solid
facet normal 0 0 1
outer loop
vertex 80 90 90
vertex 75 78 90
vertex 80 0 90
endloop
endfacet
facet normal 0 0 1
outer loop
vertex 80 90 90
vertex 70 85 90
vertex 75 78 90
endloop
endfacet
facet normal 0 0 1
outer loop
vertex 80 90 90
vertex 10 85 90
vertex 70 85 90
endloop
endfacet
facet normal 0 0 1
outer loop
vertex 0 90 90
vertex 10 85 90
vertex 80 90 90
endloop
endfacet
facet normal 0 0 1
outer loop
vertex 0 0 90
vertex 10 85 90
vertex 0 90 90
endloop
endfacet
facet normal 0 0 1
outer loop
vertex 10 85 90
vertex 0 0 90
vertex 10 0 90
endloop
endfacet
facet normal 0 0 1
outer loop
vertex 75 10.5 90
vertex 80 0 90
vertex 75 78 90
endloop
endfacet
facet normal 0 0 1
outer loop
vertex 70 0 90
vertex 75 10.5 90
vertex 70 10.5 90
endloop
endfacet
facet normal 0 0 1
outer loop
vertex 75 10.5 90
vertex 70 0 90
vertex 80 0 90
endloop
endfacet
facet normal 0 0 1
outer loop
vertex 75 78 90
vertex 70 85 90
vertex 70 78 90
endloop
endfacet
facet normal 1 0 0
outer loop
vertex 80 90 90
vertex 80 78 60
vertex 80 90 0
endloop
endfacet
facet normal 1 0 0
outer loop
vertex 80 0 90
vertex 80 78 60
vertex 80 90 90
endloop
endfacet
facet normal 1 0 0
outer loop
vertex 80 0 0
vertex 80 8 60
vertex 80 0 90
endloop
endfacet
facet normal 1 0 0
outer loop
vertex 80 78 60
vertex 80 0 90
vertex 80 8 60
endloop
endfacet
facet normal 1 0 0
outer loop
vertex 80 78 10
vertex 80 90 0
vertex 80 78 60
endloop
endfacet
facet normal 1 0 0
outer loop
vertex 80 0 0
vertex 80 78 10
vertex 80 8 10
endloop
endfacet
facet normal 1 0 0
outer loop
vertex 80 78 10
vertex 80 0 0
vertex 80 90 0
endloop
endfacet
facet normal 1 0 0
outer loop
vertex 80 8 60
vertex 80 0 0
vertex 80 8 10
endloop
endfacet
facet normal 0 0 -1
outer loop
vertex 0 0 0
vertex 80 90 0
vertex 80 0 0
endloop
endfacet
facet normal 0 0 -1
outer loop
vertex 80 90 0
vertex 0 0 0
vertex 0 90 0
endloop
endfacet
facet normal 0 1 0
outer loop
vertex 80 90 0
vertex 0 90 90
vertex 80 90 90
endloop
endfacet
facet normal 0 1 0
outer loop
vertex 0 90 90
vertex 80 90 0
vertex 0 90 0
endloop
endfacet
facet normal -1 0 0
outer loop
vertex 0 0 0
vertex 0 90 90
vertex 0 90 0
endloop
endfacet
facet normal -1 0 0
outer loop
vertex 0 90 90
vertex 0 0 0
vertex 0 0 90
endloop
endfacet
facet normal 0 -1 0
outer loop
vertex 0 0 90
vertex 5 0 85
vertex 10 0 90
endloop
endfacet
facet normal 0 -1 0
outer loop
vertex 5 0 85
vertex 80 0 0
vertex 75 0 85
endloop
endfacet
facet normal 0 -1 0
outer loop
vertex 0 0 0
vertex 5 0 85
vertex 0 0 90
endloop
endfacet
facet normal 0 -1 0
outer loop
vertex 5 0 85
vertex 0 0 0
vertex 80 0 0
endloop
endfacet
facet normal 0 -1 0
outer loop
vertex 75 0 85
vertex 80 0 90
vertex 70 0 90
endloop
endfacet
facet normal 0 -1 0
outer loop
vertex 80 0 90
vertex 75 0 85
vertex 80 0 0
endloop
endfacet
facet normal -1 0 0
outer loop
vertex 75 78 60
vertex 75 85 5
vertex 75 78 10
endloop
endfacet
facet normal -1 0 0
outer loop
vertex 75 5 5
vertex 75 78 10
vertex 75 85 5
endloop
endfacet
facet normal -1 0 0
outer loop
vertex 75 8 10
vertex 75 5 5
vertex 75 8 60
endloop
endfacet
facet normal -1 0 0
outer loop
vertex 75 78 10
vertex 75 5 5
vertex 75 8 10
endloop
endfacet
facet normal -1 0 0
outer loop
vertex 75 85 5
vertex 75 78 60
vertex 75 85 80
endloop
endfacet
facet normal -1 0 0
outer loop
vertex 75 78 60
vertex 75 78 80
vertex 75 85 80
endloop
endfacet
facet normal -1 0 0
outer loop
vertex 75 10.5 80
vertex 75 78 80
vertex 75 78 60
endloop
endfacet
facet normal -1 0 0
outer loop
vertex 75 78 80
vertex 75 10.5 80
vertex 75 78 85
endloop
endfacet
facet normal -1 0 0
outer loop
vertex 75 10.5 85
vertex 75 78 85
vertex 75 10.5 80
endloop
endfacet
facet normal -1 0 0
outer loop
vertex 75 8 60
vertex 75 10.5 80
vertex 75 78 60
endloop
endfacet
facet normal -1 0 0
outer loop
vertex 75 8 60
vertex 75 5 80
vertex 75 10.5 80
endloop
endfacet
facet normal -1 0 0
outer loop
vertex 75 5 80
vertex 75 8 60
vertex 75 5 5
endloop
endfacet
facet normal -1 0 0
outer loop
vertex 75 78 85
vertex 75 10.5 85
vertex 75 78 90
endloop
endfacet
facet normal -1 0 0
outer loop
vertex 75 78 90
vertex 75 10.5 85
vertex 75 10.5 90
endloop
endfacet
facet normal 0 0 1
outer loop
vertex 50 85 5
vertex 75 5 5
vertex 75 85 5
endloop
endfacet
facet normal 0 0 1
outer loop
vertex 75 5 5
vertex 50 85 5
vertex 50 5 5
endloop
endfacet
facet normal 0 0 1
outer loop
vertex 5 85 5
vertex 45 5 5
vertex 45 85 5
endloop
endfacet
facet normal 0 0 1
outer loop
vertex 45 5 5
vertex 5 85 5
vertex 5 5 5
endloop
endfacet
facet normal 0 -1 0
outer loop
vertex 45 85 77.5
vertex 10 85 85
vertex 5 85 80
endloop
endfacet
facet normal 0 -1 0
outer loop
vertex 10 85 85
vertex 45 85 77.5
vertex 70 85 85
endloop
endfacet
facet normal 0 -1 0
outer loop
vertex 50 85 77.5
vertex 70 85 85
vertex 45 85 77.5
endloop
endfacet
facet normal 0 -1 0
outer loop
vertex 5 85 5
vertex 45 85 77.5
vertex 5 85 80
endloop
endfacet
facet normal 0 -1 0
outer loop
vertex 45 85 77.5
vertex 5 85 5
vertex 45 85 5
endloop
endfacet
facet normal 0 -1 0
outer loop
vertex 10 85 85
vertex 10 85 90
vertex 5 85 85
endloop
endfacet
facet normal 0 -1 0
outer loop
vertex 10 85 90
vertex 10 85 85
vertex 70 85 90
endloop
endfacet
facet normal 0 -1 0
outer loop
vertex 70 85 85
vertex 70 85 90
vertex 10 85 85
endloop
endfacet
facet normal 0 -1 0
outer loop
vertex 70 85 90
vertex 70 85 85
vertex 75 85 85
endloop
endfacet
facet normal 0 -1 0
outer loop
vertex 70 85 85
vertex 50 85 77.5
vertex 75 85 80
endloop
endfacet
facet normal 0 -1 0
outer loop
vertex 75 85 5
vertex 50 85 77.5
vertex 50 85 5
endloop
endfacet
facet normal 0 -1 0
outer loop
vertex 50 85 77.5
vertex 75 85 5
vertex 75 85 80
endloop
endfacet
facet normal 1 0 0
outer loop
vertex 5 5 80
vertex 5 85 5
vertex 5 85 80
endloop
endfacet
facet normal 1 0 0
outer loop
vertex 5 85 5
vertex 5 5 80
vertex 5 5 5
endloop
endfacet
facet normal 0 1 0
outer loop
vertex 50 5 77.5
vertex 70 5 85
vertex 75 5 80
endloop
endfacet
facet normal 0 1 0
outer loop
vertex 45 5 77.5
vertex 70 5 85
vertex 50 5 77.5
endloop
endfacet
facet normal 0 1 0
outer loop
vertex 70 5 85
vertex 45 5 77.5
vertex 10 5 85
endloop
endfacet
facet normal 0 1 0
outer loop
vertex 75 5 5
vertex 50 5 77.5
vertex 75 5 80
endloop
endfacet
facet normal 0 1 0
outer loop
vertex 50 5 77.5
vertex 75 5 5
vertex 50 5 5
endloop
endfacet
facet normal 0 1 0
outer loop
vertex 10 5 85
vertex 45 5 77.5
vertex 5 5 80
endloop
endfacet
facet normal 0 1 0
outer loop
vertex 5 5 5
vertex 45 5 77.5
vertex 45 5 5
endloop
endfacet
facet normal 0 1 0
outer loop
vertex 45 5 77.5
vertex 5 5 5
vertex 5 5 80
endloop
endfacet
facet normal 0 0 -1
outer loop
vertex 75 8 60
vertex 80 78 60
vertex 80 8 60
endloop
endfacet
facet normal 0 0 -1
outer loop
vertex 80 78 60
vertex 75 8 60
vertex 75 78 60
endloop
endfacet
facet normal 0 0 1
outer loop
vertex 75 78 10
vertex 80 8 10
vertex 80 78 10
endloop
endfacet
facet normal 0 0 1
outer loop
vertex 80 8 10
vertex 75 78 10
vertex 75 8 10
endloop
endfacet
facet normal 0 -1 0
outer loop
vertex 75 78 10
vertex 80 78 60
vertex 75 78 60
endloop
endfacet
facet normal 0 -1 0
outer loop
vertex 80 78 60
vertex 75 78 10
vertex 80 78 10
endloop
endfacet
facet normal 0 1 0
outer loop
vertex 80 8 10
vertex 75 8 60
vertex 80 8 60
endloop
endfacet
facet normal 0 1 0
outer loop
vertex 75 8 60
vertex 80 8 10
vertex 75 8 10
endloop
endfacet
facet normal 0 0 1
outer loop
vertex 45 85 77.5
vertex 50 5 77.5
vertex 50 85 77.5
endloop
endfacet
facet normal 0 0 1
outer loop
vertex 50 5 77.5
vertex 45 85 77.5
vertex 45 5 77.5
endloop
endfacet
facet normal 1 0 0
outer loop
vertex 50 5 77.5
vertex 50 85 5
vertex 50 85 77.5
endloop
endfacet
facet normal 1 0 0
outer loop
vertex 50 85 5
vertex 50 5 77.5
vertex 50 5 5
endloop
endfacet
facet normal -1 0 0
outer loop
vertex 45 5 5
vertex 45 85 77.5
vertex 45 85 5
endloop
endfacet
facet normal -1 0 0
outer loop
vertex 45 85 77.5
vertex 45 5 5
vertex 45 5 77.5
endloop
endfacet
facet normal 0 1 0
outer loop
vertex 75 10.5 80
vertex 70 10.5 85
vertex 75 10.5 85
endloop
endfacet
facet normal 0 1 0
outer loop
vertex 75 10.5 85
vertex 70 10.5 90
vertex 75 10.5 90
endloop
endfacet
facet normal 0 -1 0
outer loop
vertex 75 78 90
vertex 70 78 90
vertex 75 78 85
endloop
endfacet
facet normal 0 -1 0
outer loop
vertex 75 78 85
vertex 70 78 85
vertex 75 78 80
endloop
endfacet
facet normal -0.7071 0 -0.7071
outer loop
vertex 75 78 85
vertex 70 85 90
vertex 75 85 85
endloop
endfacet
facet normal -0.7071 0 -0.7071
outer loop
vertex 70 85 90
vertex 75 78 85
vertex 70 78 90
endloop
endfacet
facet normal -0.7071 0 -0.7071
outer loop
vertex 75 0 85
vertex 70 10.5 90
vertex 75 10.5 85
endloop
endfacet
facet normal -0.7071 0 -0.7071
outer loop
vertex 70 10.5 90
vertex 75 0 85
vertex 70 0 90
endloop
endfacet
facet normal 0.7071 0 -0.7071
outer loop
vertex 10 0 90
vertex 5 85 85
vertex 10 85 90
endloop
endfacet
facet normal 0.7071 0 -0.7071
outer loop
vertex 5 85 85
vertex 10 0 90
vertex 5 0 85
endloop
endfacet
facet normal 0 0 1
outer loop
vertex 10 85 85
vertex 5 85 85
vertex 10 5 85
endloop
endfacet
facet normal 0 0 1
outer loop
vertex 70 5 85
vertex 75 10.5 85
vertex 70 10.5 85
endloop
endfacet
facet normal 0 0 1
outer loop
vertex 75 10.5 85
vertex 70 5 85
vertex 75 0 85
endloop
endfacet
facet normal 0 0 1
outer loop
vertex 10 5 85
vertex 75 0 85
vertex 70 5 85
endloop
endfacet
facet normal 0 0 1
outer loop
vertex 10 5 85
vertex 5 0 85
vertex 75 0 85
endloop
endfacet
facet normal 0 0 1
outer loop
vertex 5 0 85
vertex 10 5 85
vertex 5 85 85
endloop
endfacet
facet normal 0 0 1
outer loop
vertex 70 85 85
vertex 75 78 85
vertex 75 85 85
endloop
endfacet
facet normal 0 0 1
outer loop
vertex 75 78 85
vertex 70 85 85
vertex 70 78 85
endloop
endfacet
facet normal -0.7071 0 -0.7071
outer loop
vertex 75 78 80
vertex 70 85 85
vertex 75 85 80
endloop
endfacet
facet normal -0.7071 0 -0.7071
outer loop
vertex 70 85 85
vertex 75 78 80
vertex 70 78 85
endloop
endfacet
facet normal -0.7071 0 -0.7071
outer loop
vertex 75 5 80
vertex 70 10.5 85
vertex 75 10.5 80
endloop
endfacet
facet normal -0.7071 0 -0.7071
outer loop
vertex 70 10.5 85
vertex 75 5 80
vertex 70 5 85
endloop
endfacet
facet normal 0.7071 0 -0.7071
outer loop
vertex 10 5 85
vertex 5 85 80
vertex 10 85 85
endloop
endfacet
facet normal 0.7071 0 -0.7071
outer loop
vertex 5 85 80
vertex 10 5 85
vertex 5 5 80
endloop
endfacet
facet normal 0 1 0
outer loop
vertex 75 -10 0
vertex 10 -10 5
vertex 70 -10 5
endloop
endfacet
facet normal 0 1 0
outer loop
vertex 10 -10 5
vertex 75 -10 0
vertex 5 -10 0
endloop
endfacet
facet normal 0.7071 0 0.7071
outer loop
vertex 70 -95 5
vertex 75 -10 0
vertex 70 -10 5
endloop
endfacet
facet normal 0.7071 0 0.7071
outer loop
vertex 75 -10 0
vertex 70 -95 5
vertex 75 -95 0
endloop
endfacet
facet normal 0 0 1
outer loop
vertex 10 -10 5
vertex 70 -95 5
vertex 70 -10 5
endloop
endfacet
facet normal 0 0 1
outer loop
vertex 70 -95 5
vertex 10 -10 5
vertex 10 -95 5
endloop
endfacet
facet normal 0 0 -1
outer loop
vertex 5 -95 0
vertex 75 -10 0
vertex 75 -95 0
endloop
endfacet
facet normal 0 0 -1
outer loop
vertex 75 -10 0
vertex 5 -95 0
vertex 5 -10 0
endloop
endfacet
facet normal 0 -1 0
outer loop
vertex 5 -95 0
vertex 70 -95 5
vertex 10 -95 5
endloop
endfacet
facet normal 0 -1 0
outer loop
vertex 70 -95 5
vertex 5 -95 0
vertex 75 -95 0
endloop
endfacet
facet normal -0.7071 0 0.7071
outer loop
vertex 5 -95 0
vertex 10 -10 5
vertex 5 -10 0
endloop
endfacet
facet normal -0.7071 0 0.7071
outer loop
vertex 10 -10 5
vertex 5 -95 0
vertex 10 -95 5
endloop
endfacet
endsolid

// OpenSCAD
translate([0,0,90])
rotate([0,90,0]) {
difference() {
union() {
difference() {
    color([1,1,0])
    cube([90,90,80]);
    
    color([1,0,0])
    translate([-5,5,5])
    cube([90,80,70]);
    
    color([0,1,0])
    translate([30,8,70])
    cube([50,70,20]);
}

color([0,0,1])
translate([12.5,2.5,45])
cube([75,85,5]);

color([1,0.5,0])
translate([0,2.5,5])
cube([10,85,5]);

color([0.5,0.5,0])
translate([0,2.5,70])
cube([10,8,5]);

color([0.5,0.5,0])
translate([0,78,70])
cube([10,10,5]);
}


color([1,0,1])
translate([5,0,75])
rotate([0,90,90])
linear_extrude(height=85)
polygon([[0,0],[5,5],[65,5],[70,0]]);


color([1,0,1])
translate([10,5,75])
rotate([0,90,90])
linear_extrude(height=80)
polygon([[0,0],[5,5],[65,5],[70,0]]);
}

}


color([1,0,1])
rotate([90,0,0])
translate([5,0,10])
linear_extrude(height=85)
polygon([[0,0],[5,5],[65,5],[70,0]]);
